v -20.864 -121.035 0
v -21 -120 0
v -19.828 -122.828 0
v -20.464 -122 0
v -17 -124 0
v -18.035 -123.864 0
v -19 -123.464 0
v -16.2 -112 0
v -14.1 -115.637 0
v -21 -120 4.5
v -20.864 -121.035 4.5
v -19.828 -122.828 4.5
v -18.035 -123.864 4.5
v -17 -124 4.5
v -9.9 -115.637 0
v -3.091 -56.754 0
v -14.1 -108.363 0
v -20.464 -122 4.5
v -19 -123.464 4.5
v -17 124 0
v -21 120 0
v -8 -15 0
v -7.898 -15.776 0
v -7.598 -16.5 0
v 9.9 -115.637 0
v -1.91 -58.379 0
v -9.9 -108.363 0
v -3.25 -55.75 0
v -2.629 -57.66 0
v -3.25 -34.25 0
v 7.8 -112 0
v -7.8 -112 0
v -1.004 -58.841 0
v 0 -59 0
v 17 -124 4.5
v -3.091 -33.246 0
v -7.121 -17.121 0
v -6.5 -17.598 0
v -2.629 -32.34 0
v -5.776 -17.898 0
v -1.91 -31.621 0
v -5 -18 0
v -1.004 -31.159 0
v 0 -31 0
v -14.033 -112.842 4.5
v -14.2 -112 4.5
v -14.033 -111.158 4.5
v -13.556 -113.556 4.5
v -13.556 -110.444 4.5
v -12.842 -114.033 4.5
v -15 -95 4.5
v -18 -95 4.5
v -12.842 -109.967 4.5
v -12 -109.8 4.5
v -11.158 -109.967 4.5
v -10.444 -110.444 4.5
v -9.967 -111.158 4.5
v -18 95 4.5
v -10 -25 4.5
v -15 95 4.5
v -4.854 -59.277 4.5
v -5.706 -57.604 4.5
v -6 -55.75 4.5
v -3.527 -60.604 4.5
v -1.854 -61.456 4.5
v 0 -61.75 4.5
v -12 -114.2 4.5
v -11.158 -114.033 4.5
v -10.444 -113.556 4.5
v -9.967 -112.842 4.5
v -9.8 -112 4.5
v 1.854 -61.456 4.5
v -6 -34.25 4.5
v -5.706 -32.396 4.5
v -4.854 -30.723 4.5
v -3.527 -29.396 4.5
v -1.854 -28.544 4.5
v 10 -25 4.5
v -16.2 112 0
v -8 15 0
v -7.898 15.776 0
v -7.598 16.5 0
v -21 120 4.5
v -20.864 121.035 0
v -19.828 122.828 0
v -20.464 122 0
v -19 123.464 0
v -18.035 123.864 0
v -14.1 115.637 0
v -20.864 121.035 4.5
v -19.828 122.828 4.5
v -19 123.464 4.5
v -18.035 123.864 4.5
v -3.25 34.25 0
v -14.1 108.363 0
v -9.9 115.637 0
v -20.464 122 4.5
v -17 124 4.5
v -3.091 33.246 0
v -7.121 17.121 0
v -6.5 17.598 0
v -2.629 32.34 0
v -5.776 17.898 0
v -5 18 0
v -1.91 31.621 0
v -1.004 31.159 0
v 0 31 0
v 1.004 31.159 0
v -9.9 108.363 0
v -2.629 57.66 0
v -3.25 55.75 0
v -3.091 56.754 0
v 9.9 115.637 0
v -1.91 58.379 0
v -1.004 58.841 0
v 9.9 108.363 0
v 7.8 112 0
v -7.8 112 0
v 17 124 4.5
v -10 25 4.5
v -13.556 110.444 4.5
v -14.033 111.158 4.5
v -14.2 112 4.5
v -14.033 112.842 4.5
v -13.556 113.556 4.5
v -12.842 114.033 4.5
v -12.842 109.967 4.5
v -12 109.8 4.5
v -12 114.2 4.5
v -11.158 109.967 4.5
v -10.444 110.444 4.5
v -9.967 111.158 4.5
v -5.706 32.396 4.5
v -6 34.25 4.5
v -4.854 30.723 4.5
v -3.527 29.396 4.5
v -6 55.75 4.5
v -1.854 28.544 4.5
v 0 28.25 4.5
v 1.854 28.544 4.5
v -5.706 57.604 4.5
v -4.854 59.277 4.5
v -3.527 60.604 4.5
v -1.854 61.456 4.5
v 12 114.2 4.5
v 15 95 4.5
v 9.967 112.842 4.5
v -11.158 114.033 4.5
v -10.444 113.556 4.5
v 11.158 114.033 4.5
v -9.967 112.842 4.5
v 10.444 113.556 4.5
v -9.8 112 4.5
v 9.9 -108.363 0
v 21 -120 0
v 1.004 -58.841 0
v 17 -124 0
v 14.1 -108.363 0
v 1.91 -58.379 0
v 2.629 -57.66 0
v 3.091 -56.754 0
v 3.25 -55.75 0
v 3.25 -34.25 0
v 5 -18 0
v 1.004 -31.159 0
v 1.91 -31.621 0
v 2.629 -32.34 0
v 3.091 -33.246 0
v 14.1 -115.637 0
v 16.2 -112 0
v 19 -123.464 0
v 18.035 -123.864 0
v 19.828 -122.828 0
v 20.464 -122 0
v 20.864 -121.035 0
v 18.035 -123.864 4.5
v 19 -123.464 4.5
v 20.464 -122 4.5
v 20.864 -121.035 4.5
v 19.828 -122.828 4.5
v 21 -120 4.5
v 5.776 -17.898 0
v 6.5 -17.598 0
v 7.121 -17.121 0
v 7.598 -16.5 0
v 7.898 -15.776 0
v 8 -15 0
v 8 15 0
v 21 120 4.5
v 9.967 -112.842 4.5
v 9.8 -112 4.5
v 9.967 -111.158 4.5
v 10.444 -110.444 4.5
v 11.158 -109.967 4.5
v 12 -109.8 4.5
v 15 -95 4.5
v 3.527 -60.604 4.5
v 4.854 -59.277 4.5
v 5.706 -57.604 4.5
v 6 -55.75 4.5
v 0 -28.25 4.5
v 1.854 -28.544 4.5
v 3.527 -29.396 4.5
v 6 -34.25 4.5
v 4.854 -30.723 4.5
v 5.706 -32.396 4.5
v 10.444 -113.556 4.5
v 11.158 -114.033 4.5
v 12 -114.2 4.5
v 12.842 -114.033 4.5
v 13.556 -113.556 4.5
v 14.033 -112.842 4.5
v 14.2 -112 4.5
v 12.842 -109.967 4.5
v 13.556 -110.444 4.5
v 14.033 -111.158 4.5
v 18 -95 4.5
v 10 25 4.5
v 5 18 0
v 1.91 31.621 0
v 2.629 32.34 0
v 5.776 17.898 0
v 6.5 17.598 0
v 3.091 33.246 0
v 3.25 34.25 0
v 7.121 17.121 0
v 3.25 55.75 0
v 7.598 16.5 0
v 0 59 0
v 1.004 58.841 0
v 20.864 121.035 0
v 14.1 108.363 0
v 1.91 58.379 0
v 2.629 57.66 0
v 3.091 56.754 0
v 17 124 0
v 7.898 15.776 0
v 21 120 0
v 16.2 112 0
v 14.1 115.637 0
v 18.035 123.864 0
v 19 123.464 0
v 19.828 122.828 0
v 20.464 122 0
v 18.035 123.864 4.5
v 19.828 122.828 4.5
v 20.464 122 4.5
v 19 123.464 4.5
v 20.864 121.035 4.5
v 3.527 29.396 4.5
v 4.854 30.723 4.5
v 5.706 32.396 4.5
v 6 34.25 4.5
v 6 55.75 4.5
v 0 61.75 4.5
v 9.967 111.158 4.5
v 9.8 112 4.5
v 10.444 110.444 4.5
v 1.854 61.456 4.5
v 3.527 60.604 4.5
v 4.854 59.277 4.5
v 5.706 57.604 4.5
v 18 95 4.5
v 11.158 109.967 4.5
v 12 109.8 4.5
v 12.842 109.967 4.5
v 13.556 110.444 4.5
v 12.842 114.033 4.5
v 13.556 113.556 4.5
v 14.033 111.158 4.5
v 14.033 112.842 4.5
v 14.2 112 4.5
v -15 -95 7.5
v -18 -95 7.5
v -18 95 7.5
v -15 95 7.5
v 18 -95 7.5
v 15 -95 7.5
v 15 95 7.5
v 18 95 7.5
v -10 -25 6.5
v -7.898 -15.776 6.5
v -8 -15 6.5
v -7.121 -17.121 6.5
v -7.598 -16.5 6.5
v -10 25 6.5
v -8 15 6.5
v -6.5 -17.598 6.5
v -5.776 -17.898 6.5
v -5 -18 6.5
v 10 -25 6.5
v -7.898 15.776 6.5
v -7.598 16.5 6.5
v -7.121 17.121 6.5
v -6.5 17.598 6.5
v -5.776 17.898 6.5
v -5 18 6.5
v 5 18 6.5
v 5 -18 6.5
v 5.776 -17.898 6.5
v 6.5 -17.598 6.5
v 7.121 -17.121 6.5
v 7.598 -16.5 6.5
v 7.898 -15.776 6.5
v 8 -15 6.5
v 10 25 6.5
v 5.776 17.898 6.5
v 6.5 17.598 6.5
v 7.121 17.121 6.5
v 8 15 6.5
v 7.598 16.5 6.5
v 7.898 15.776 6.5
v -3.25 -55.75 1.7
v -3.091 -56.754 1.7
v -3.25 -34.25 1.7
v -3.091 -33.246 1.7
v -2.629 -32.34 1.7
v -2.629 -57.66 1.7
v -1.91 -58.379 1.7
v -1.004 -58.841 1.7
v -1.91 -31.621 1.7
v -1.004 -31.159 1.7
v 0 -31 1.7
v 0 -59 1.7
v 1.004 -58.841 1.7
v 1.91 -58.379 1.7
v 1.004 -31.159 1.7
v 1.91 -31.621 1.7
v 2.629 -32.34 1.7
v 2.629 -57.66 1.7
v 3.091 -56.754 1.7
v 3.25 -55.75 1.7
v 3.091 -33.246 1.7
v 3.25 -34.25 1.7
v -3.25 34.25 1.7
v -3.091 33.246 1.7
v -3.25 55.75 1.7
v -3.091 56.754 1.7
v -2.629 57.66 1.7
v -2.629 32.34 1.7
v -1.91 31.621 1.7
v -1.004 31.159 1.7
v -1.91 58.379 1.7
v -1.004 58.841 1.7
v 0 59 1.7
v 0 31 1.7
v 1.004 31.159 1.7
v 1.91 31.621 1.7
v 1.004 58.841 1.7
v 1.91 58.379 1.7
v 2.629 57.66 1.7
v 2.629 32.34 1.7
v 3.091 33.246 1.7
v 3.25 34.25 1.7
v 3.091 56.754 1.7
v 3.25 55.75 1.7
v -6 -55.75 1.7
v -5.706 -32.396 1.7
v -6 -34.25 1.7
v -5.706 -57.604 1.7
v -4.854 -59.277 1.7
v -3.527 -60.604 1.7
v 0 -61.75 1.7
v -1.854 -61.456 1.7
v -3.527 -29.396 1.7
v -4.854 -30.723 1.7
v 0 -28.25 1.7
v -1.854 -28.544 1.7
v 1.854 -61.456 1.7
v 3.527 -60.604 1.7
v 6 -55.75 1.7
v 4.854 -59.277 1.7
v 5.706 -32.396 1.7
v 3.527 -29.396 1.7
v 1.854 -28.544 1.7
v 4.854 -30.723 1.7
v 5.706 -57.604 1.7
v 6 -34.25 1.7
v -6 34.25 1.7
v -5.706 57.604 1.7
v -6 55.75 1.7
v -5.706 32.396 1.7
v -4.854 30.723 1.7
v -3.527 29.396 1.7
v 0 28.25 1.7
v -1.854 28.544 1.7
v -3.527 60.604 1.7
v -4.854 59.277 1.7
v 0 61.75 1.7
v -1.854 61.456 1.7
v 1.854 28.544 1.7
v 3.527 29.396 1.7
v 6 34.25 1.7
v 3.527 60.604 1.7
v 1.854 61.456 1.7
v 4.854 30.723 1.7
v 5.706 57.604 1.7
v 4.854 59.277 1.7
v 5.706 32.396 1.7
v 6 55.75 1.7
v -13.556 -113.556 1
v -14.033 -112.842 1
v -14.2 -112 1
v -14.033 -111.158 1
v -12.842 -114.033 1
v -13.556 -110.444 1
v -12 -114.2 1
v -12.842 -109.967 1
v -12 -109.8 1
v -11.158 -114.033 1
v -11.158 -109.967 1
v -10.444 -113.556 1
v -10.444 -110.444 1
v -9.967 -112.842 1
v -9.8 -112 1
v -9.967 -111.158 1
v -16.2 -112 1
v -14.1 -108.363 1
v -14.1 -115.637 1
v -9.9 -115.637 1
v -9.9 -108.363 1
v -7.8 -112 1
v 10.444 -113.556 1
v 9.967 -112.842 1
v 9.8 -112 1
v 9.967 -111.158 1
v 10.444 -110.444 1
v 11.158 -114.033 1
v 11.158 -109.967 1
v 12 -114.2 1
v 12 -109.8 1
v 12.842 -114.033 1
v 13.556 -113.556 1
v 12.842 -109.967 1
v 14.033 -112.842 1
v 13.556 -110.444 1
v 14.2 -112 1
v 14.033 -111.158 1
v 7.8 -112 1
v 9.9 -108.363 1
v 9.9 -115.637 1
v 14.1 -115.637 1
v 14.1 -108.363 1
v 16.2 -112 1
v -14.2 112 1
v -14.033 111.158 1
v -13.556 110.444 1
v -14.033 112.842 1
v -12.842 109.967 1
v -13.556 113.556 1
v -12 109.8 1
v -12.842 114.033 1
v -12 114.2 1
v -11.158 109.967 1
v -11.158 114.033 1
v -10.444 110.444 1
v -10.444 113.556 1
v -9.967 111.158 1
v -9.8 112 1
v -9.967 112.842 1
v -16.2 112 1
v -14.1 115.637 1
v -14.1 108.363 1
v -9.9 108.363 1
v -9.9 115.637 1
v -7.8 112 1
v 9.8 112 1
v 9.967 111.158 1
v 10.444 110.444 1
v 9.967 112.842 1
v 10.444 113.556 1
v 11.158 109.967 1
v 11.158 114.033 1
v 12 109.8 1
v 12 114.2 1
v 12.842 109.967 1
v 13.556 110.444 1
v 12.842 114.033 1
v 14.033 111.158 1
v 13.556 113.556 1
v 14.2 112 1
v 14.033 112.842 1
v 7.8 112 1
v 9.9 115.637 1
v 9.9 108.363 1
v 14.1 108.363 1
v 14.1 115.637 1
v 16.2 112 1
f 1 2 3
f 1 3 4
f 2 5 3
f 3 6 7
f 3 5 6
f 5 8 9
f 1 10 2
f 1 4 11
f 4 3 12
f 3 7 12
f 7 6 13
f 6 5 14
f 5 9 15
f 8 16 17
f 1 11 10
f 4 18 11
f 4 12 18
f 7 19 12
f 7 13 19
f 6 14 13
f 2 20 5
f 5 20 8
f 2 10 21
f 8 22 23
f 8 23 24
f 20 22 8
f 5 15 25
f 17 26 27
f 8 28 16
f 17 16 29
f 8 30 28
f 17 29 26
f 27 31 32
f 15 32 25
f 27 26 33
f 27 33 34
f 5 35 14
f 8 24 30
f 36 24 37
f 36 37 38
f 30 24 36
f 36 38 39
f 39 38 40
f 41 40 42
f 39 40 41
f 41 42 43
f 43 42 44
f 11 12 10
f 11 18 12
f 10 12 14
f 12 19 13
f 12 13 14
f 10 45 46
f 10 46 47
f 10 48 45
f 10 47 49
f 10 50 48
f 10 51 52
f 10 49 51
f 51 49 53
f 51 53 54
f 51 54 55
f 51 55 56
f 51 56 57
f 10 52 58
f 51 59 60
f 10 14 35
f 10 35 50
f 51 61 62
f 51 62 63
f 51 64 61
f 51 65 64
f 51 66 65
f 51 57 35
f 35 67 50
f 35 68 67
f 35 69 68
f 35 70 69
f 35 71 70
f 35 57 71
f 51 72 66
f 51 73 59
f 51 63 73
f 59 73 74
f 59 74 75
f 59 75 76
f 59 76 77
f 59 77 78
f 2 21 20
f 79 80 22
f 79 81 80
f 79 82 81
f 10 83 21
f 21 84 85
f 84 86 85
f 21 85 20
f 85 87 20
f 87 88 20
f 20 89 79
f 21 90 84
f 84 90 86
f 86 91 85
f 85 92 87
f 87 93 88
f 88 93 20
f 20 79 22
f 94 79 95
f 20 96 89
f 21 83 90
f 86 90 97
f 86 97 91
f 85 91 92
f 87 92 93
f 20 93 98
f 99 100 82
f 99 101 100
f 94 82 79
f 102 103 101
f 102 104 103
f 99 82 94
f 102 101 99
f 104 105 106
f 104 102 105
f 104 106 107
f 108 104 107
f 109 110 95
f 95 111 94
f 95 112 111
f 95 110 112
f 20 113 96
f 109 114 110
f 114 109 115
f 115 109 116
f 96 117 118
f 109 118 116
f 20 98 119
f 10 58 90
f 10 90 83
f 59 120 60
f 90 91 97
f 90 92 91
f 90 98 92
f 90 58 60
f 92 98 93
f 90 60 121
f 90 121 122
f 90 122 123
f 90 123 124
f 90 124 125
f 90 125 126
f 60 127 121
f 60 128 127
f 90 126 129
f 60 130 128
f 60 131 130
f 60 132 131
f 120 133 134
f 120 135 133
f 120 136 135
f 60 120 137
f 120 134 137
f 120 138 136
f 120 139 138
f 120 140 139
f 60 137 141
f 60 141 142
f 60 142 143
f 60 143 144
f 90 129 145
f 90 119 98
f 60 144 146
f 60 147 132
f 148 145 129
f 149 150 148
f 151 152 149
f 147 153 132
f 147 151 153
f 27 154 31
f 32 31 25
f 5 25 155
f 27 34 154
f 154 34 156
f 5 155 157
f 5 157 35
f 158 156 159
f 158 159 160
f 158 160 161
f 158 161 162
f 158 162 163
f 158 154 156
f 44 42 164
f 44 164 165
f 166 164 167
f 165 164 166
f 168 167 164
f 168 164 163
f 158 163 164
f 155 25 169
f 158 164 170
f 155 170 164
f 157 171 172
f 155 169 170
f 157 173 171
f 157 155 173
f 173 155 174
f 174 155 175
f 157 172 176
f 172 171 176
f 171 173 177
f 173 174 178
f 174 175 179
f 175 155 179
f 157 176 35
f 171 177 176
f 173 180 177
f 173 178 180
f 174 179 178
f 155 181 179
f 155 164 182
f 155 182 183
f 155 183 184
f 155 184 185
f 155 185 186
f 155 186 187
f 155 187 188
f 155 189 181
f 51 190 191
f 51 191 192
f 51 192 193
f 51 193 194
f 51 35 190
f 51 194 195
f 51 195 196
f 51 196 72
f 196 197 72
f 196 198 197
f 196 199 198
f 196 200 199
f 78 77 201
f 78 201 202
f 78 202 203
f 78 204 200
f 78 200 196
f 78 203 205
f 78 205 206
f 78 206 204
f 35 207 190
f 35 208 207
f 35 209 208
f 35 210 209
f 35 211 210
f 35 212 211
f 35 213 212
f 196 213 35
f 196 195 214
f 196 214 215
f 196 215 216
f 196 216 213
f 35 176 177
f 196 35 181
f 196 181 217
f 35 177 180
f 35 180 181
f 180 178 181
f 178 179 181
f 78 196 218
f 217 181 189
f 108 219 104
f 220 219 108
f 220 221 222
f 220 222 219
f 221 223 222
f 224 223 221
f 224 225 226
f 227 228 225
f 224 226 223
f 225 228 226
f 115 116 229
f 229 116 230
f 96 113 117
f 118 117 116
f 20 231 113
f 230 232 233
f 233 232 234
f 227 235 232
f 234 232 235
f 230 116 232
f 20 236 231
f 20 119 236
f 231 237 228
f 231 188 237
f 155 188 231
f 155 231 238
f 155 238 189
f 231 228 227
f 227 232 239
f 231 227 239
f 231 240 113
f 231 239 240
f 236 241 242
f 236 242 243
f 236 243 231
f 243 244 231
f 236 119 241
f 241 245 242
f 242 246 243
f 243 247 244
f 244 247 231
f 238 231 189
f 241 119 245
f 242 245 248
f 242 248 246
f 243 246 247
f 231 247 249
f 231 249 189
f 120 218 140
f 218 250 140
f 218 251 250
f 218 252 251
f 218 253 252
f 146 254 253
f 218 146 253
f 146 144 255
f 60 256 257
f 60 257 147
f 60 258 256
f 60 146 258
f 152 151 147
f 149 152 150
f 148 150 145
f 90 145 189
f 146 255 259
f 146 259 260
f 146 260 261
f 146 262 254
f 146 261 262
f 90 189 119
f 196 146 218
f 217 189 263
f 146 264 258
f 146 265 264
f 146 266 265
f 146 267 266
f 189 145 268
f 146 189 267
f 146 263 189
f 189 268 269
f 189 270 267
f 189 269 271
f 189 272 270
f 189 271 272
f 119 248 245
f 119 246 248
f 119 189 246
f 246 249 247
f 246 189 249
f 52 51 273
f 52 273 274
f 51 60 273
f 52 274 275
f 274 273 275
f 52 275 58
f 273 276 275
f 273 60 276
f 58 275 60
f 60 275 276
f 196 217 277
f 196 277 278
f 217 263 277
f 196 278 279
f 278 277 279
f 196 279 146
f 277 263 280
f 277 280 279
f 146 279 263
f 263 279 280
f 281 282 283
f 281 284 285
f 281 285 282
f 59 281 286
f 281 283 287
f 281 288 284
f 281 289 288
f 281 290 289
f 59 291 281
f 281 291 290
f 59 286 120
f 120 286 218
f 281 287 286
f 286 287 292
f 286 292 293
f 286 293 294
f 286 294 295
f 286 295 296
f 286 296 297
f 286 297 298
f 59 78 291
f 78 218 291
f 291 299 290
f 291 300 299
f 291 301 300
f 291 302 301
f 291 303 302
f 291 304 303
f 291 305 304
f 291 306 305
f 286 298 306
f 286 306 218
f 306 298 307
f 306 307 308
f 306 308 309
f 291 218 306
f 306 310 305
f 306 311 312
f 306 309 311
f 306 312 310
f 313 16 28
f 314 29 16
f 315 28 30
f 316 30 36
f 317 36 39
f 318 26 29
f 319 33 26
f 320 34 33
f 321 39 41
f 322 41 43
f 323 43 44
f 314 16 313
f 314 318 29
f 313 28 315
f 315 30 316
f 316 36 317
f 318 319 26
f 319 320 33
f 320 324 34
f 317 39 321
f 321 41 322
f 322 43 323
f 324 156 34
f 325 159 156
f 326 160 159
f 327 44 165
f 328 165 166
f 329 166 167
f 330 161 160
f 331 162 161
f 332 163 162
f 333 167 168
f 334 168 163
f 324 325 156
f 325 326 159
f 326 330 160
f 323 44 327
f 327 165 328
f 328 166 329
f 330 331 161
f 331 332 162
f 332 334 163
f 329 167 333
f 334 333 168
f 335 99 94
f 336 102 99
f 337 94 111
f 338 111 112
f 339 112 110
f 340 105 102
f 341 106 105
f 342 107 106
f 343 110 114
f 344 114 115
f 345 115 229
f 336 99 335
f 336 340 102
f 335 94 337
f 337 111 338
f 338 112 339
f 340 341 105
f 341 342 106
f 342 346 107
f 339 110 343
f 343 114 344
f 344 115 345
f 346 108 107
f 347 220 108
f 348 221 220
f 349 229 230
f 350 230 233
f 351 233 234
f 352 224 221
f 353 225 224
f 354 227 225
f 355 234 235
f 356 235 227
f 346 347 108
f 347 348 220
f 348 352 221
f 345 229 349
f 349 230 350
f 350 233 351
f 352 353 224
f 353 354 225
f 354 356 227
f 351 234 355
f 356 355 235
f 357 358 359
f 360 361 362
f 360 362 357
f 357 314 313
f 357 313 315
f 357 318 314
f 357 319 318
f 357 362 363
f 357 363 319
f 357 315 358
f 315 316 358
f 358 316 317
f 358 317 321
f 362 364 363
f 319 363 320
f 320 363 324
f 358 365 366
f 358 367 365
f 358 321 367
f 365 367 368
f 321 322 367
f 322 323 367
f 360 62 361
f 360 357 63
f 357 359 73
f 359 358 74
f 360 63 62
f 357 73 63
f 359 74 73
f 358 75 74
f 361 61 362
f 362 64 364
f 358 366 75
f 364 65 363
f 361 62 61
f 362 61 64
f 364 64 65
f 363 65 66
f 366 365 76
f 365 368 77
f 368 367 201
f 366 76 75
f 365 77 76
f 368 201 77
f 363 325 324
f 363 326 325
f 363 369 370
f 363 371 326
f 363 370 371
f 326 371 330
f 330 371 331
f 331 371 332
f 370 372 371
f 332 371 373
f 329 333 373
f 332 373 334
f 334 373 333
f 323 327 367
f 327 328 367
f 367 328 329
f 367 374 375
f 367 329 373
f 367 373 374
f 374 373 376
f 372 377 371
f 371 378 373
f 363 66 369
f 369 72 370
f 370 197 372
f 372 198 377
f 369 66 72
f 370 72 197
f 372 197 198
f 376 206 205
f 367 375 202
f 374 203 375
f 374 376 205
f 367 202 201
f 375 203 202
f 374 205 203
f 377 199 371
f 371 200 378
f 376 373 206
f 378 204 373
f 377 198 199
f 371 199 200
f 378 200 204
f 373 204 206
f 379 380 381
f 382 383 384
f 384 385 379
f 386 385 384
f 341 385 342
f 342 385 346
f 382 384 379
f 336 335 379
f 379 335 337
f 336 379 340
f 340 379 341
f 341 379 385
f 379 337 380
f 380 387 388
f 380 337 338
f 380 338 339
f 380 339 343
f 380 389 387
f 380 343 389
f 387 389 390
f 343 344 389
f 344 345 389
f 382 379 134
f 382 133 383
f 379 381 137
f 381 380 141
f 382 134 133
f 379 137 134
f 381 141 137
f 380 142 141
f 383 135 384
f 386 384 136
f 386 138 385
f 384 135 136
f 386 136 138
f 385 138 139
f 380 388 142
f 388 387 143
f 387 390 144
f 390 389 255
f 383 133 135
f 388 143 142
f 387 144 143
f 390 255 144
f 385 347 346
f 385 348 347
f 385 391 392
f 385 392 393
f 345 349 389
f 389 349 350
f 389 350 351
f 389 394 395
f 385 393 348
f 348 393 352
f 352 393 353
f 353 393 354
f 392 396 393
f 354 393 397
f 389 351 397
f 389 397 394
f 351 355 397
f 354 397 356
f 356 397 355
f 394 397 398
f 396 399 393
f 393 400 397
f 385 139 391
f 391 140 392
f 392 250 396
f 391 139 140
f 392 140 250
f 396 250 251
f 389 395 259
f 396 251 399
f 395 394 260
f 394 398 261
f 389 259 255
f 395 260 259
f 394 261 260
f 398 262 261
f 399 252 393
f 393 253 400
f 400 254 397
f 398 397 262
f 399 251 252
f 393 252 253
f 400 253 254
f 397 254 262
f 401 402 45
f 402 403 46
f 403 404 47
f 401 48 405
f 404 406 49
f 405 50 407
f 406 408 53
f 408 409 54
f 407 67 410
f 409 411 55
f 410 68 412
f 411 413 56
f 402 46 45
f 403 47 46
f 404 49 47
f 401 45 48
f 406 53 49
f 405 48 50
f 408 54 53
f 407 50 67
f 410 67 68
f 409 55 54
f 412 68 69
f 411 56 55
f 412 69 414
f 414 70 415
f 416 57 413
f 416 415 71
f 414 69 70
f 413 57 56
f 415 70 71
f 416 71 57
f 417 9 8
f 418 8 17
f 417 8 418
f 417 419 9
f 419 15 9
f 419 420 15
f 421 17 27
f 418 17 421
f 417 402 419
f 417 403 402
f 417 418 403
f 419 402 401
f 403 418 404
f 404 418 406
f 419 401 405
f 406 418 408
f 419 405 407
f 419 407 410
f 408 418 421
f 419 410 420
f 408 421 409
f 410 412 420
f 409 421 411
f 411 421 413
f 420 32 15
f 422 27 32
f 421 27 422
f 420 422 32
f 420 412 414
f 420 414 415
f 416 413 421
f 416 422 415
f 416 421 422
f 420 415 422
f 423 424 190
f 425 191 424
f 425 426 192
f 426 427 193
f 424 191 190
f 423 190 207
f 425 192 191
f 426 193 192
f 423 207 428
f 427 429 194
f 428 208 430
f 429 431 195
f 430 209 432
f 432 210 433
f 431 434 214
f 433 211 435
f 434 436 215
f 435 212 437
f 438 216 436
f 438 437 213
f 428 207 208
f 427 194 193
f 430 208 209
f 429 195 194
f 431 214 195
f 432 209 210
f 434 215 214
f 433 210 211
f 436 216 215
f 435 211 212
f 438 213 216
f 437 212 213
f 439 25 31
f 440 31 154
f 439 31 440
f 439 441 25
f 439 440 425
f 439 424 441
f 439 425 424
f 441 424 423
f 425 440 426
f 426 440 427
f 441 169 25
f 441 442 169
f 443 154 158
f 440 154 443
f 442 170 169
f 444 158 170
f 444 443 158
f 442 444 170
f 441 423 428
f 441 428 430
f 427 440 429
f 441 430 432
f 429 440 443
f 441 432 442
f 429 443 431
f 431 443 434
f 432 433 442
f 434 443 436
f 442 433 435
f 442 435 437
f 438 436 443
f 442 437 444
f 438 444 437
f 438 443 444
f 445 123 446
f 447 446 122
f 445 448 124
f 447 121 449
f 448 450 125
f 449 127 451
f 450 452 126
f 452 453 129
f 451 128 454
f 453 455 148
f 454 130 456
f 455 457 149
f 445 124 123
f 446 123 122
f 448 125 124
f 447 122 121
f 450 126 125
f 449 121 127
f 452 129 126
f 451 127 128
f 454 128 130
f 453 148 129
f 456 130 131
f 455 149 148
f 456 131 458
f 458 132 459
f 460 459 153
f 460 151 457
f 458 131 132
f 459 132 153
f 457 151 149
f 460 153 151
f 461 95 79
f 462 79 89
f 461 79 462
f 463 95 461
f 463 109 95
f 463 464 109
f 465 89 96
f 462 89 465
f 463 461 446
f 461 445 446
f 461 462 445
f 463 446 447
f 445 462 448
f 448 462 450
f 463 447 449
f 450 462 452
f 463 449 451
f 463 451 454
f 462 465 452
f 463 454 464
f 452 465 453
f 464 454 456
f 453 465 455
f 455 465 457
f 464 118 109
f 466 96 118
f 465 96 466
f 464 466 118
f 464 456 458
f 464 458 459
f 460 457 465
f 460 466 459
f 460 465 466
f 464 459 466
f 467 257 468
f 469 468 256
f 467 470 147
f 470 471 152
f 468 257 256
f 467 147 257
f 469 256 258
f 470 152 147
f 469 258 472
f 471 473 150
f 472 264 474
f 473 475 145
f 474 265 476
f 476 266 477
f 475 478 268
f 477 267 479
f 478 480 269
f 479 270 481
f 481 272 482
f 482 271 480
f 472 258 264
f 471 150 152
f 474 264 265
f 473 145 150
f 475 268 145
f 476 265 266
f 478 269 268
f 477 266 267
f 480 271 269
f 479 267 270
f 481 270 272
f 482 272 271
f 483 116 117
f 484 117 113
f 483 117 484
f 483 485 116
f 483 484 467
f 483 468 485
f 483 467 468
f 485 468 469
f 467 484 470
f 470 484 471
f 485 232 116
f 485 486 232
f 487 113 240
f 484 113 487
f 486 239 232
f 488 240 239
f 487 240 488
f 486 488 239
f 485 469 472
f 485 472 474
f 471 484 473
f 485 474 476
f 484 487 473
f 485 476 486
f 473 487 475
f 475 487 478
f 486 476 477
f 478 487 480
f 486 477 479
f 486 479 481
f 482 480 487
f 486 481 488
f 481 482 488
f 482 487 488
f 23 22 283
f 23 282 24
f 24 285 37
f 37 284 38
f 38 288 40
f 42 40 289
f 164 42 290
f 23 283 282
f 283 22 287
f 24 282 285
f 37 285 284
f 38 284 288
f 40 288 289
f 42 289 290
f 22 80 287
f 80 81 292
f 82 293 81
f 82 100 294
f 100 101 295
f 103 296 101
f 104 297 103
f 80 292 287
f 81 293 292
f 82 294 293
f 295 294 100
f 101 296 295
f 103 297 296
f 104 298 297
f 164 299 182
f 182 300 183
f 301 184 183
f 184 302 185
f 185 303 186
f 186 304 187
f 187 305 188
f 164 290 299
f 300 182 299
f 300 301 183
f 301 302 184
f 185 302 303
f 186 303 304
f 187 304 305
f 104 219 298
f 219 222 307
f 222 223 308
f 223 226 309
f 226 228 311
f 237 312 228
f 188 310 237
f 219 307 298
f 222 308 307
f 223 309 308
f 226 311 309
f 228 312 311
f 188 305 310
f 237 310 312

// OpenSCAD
// file: ../00_common/parameters.scad
// =============================================================================
// OpenMotorBridge - Global CAD Parameters & Settings
// =============================================================================
// File: hardware/cad/scad/00_common/parameters.scad
// Description: Global dimensional constants, manufacturing clearances and
//              circle resolution ($fn) for all OpenSCAD modules.
// =============================================================================

// --- 1. Circle & Curve Resolution ---
$fn = 60; // Smooth cylinders and holes for high-quality MJF 3D printing

// --- 2. Central Main Box Dimensions (3-Tier Sandwich) ---
MAIN_BOX_OUTER_L      = 110.0; // Outer length in X (mm)
MAIN_BOX_OUTER_W      = 74.0;  // Outer width in Y (mm)
MAIN_BOX_LOWER_H      = 17.0;  // Lower case height in Z (mm)
MAIN_BOX_MID_H        = 15.0;  // Mid tray height in Z (mm)
MAIN_BOX_LID_H        = 4.0;   // Lid plate thickness in Z (mm)
MAIN_BOX_WALL         = 2.5;   // Nominal wall thickness (mm)
MAIN_BOX_CORNER_POST  = 7.0;   // Corner clamping screw post size (mm, for M3 hex nut pockets)

// --- 3. Satellite Pod Dimensions (Universal Enlarged Envelope) ---
POD_OUTER_L           = 135.0; // Outer length in X (mm)
POD_OUTER_W           = 70.0;  // Outer width in Y (mm)
POD_OUTER_H           = 38.0;  // Outer height in Z (mm)
POD_WALL              = 3.5;   // Nominal wall thickness (mm)
POD_BULKHEAD_X        = 18.0;  // Partition bulkhead position in X (mm)
POD_CHAMBER_L         = 117.0; // Sliding chamber length in X (mm)
POD_CHAMBER_W         = 63.0;  // Sliding chamber width in Y (mm)
POD_CHAMBER_H         = 31.0;  // Sliding chamber height in Z (mm)

// --- 4. Pod Linear Guide Rails (Poka-Yoke Tongue & Groove) ---
POD_GROOVE_W          = 3.0;   // Internal guide groove width in Z (mm)
POD_GROOVE_DEPTH      = 1.5;   // Internal guide groove depth in Y (mm)
POD_GROOVE_LEFT_Z     = 10.0;  // Center height of left groove (mm)
POD_GROOVE_RIGHT_Z    = 18.0;  // Center height of right groove (mm, asym offset)

CARTRIDGE_TONGUE_W    = 2.6;   // Cartridge tongue rail height in Z (mm, 0.2mm clearance)
CARTRIDGE_TONGUE_PROT = 1.4;   // Cartridge tongue protrusion in Y (mm, 0.1mm clearance)
CARTRIDGE_CHAMFER_L   = 4.0;   // 30° lead-in chamfer nose length (mm)

// --- 5. Cartridge Dimensions (Enlarged Universal Sled) ---
CARTRIDGE_BASE_L      = 116.0; // Sled length in X (mm)
CARTRIDGE_BASE_W      = 58.0;  // Sled width in Y (mm)
CARTRIDGE_BASE_H      = 28.0;  // Sled height in Z (mm)
CARTRIDGE_FACE_L      = 4.0;   // Front faceplate thickness in X (mm)
CARTRIDGE_FACE_W      = 64.0;  // Front faceplate width in Y (mm)
CARTRIDGE_FACE_H      = 34.0;  // Front faceplate height in Z (mm)

// --- 5a. RF Interface & Sealing Dimensions ---
SMA_BORE_R            = 3.25;  // Ø 6.5 mm through-hole for standard SMA bulkhead
SMA_ORECESS_R         = 4.75;  // Ø 9.5 mm recess for waterproof silicone O-ring
SMA_ORECESS_DEPTH     = 1.2;   // 1.2 mm deep O-ring compression pocket

// --- 5b. Magnetic Anti-Theft Lock System ---
LATCH_PIVOT_X         = 58.0;  // Center pivot position along sled X (mm)
LATCH_MAGNET_X        = 46.0;  // Ferromagnetic anchor position along sled X (mm)
LATCH_TOOTH_X         = 70.0;  // Locking sawtooth pawl position along sled X (mm)
LATCH_ARM_H           = 6.0;   // Rocker lever height in Z (mm)
LATCH_ARM_THICK       = 2.6;   // Rocker beam thickness in Y (mm)
LATCH_MAGNET_PIN_DIA  = 6.2;   // Bore for Ø 6.0 mm steel dowel pin (mm)
LATCH_SPRING_DIA      = 3.8;   // Bore for Ø 3.5 mm return compression spring (mm)

// --- 6. Standard Captive Hex Nut Pockets (DIN 934 / DIN 985 with +0.2 mm MJF/FDM clearance) ---
NUT_M2_SW             = 4.2;   // M2 across flats (nominal 4.0 mm)
NUT_M2_H              = 1.8;   // M2 thickness (nominal 1.6 mm)
NUT_M2_5_SW           = 5.2;   // M2.5 across flats (nominal 5.0 mm)
NUT_M2_5_H            = 2.2;   // M2.5 thickness (nominal 2.0 mm)
NUT_M3_SW             = 5.7;   // M3 across flats (nominal 5.5 mm)
NUT_M3_H              = 2.6;   // M3 thickness (nominal 2.4 mm)
NUT_M4_SW             = 7.2;   // M4 across flats (nominal 7.0 mm)
NUT_M4_H              = 3.4;   // M4 thickness (nominal 3.2 mm)
NUT_M5_SW             = 8.2;   // M5 across flats (nominal 8.0 mm)
NUT_M5_H              = 4.2;   // M5 thickness (nominal 4.0 mm)

// Direct Plastic Thread-Forming / Self-Tapping Pilot Holes in PA12 (100% Soldering-Iron Free)
M2_PILOT_HOLE_R       = 0.85;  // Core hole for M2 screws in PA12 (Ø 1.7 mm)
M2_5_PILOT_HOLE_R     = 1.05;  // Core hole for M2.5 screws in PA12 (Ø 2.1 mm)
M3_PILOT_HOLE_R       = 1.25;  // Core hole for M3 screws in PA12 (Ø 2.5 mm)

// --- 7. Screw & Clearance Dimensions ---
M2_SCREW_HOLE_R       = 1.1;   // M2 clearance hole (r = 1.1 mm -> Ø 2.2 mm)
M2_5_SCREW_HOLE_R     = 1.4;   // M2.5 clearance hole (r = 1.4 mm -> Ø 2.8 mm)
M3_SCREW_HOLE_R       = 1.65;  // M3 clearance hole (r = 1.65 mm -> Ø 3.3 mm)
M4_SCREW_HOLE_R       = 2.2;   // M4 clearance hole (r = 2.2 mm -> Ø 4.4 mm)
M8_BORE_R             = 4.0;   // M8 cable through-bore (r = 4.0 mm -> Ø 8.0 mm)
M8_STUDS_OUTER_R      = 6.0;   // M8 neck outer radius (Ø 12.0 mm)

// --- 8. Universal Front Node Enclosure Dimensions (Type E: 98 x 68 x 25 mm) ---
FRONT_NODE_PCB_L      = 82.0;  // PCB length in X (mm, PCBA 05)
FRONT_NODE_PCB_W      = 50.0;  // PCB width in Y (mm, PCBA 05)
FRONT_NODE_PCB_H      = 1.6;   // PCB thickness in Z (mm)
FRONT_NODE_PCB_R      = 2.5;   // PCB corner radius (mm)

FRONT_NODE_CHAMBER_L  = 86.0;  // Internal chamber length in X (mm, 2mm margin per side)
FRONT_NODE_CHAMBER_W  = 56.0;  // Internal chamber width in Y (mm, 3mm margin per side)
FRONT_NODE_TUB_H      = 17.5;  // Lower tub depth in Z (mm)
FRONT_NODE_LID_H      = 7.5;   // Upper lid height in Z (mm)
FRONT_NODE_WALL       = 2.5;   // Wall thickness in HP MJF PA12 (mm)
FRONT_NODE_CORNER_R   = 4.0;   // Outer enclosure corner radius (mm)

FRONT_NODE_OUTER_L    = FRONT_NODE_CHAMBER_L + 2 * FRONT_NODE_WALL + 7.0; // 98.0 mm
FRONT_NODE_OUTER_W    = FRONT_NODE_CHAMBER_W + 2 * FRONT_NODE_WALL + 7.0; // 68.0 mm
FRONT_NODE_OUTER_H    = FRONT_NODE_TUB_H + FRONT_NODE_LID_H;              // 25.0 mm

// PCB Standoff Heights & Radii (100% Soldering-Iron Free)
FRONT_NODE_STANDOFF_H = 3.0;   // Height of PCB standoffs from floor (mm)
FRONT_NODE_STANDOFF_R = 3.0;   // Outer radius of M2.5 screw bosses (mm)
FRONT_NODE_CORE_HOLE_R= M2_5_PILOT_HOLE_R; // Core hole for direct M2.5 screw engagement (Ø 2.1 mm)

// AMPS 4-Hole Mounting Pattern (38 x 30 mm with DIN 934 M4 Captive Nut Pockets)
AMPS_SPACING_X        = 38.0;  // AMPS hole distance in X (mm)
AMPS_SPACING_Y        = 30.0;  // AMPS hole distance in Y (mm)
AMPS_NUT_SW           = NUT_M4_SW; // Captive M4 hex nut pocket across flats (7.2 mm)
AMPS_NUT_H            = NUT_M4_H;  // Captive M4 hex nut pocket depth (3.4 mm)

// Acoustic Vent for Knowles SPH0645 MEMS
FRONT_NODE_MIC_HOLE_R = 1.25;  // Sound canal radius (Ø 2.5 mm)
FRONT_NODE_MIC_MEMB_R = 3.0;   // Gore ePTFE membrane pocket radius (Ø 6.0 mm)
FRONT_NODE_MIC_MEMB_D = 0.8;   // Membrane pocket depth (mm)
// main file
// =============================================================================
// OpenMotorBridge - Adventure Under-Seat Cross-Rail (Sattelbrücke)
// =============================================================================
// File: hardware/cad/scad/02_pod_base/adventure_underseat_cross_rail.scad
// Description: Transverse under-seat mounting bridge connecting left and right
//              Transition Docks across the rear subframe trellis.
//              Solves 3 fundamental engineering requirements:
//              1. Zero-Torque Anti-Rotation: Forms a rigid U-portal across frame tubes.
//              2. 100% Invisible Mounting: Bolts to OEM under-seat bracket points (Zero-Drill).
//              3. Integrated Cable Trough: Dual M8 PUR cables route through underside channel
//                 directly into Central Box under seat without visible external wires.
// =============================================================================

include <../00_common/parameters.scad>;

// --- Parametric Dimensions ---
RAIL_SPAN_Y         = 200.0; // Nominal subframe tube centerline span (mm)
RAIL_DEPTH_X        = 42.0;  // Longitudinal width of bridge rail (mm)
RAIL_BASE_THICK     = 4.5;   // Base plate thickness (mm)
RAIL_RIB_H          = 3.0;   // Stiffening rib height (Total H = 7.5 mm)
RAIL_CORNER_R       = 4.0;   // Corner fillet radius (mm)

// Flange interface to Transition Docks (Left & Right)
DOCK_FLANGE_W       = 24.0;  // Extension of mounting tongue into dock
DOCK_SCREW_DIST_X   = 24.0;  // Distance between 2x M4 dock fastening screws
DOCK_SCREW_R        = 2.2;   // M4 clearance hole (Ø 4.4 mm)

// Subframe OEM bracket slots (transverse adjustment 170-230 mm)
OEM_SLOT_L          = 28.0;  // Transverse slot length (mm)
OEM_SLOT_W          = 6.5;   // M6 clearance width (mm)
OEM_SLOT_OFFSET_Y   = 45.0;  // Offset from bike center (Y=0)

module rail_rounded_rect(length_x, width_y, height_z, r) {
    hull() {
        translate([r, r, 0]) cylinder(r=r, h=height_z, $fn=24);
        translate([length_x - r, r, 0]) cylinder(r=r, h=height_z, $fn=24);
        translate([r, width_y - r, 0]) cylinder(r=r, h=height_z, $fn=24);
        translate([length_x - r, width_y - r, 0]) cylinder(r=r, h=height_z, $fn=24);
    }
}

module adventure_underseat_cross_rail() {
    total_y = RAIL_SPAN_Y + 2 * DOCK_FLANGE_W; // Complete width including dock tongues

    difference() {
        union() {
            // 1. Main Transverse Bridge Plate (Centered on Y=0)
            translate([-RAIL_DEPTH_X/2.0, -total_y/2.0, 0])
                rail_rounded_rect(RAIL_DEPTH_X, total_y, RAIL_BASE_THICK, RAIL_CORNER_R);

            // 2. Dual Longitudinal Stiffening Ribs (Upper surface, U-channel profile)
            for (dx = [-RAIL_DEPTH_X/2.0 + 3.0, RAIL_DEPTH_X/2.0 - 6.0]) {
                translate([dx, -RAIL_SPAN_Y/2.0 + 5.0, RAIL_BASE_THICK])
                    cube([3.0, RAIL_SPAN_Y - 10.0, RAIL_RIB_H]);
            }

            // 3. Central Cable Management Bridge Shroud
            translate([-10.0, -25.0, RAIL_BASE_THICK])
                cube([20.0, 50.0, 2.0]);
        }

        // --- SUBTRACTIONS ---

        // A. Dual Transverse OEM Mounting Adjustment Slots (For M5/M6 under-seat bolts)
        for (side = [-1, 1]) {
            translate([0, side * OEM_SLOT_OFFSET_Y, -1.0]) {
                hull() {
                    translate([0, -OEM_SLOT_L/2.0 + OEM_SLOT_W/2.0, 0])
                        cylinder(r=OEM_SLOT_W/2.0, h=RAIL_BASE_THICK + 2.0, $fn=20);
                    translate([0,  OEM_SLOT_L/2.0 - OEM_SLOT_W/2.0, 0])
                        cylinder(r=OEM_SLOT_W/2.0, h=RAIL_BASE_THICK + 2.0, $fn=20);
                }
                // Counterbore recess for flat screw heads / washers
                translate([0, 0, RAIL_BASE_THICK - 1.8]) {
                    hull() {
                        translate([0, -OEM_SLOT_L/2.0 + OEM_SLOT_W/2.0, 0])
                            cylinder(r=6.0, h=4.0, $fn=20);
                        translate([0,  OEM_SLOT_L/2.0 - OEM_SLOT_W/2.0, 0])
                            cylinder(r=6.0, h=4.0, $fn=20);
                    }
                }
            }
        }

        // B. Left & Right Dock Fastening Holes (2x M4 per side)
        for (side = [-1, 1]) {
            y_pos = side * (RAIL_SPAN_Y/2.0 + DOCK_FLANGE_W/2.0);
            for (dx = [-DOCK_SCREW_DIST_X/2.0, DOCK_SCREW_DIST_X/2.0]) {
                translate([dx, y_pos, -1.0]) {
                    cylinder(r=DOCK_SCREW_R, h=RAIL_BASE_THICK + 2.0, $fn=16);
                    // M4 hex nut pocket or countersink on bottom
                    translate([0, 0, -0.5])
                        cylinder(r=4.2, h=2.5, $fn=6);
                }
            }
        }

        // C. Underside M8 PUR Cable Harness Channels (2x Ø 6.5 mm channels leading to center)
        for (side = [-1, 1]) {
            translate([-RAIL_DEPTH_X/2.0 + 8.0, side * (RAIL_SPAN_Y/2.0 + DOCK_FLANGE_W + 2.0), -1.0])
                rotate([0, 0, side * 90])
                    hull() {
                        translate([0, 0, 0]) cube([8.0, 1.0, 3.2]);
                        translate([0, side * (RAIL_SPAN_Y/2.0 - 15.0), 0]) cube([8.0, 1.0, 3.2]);
                    }
        }

        // D. Center Cable Drop-Through Window to Battery/Tool Tray
        translate([-8.0, -18.0, -1.0])
            rail_rounded_rect(16.0, 36.0, RAIL_BASE_THICK + 5.0, 3.0);
    }
}

// Standalone render
adventure_underseat_cross_rail();
